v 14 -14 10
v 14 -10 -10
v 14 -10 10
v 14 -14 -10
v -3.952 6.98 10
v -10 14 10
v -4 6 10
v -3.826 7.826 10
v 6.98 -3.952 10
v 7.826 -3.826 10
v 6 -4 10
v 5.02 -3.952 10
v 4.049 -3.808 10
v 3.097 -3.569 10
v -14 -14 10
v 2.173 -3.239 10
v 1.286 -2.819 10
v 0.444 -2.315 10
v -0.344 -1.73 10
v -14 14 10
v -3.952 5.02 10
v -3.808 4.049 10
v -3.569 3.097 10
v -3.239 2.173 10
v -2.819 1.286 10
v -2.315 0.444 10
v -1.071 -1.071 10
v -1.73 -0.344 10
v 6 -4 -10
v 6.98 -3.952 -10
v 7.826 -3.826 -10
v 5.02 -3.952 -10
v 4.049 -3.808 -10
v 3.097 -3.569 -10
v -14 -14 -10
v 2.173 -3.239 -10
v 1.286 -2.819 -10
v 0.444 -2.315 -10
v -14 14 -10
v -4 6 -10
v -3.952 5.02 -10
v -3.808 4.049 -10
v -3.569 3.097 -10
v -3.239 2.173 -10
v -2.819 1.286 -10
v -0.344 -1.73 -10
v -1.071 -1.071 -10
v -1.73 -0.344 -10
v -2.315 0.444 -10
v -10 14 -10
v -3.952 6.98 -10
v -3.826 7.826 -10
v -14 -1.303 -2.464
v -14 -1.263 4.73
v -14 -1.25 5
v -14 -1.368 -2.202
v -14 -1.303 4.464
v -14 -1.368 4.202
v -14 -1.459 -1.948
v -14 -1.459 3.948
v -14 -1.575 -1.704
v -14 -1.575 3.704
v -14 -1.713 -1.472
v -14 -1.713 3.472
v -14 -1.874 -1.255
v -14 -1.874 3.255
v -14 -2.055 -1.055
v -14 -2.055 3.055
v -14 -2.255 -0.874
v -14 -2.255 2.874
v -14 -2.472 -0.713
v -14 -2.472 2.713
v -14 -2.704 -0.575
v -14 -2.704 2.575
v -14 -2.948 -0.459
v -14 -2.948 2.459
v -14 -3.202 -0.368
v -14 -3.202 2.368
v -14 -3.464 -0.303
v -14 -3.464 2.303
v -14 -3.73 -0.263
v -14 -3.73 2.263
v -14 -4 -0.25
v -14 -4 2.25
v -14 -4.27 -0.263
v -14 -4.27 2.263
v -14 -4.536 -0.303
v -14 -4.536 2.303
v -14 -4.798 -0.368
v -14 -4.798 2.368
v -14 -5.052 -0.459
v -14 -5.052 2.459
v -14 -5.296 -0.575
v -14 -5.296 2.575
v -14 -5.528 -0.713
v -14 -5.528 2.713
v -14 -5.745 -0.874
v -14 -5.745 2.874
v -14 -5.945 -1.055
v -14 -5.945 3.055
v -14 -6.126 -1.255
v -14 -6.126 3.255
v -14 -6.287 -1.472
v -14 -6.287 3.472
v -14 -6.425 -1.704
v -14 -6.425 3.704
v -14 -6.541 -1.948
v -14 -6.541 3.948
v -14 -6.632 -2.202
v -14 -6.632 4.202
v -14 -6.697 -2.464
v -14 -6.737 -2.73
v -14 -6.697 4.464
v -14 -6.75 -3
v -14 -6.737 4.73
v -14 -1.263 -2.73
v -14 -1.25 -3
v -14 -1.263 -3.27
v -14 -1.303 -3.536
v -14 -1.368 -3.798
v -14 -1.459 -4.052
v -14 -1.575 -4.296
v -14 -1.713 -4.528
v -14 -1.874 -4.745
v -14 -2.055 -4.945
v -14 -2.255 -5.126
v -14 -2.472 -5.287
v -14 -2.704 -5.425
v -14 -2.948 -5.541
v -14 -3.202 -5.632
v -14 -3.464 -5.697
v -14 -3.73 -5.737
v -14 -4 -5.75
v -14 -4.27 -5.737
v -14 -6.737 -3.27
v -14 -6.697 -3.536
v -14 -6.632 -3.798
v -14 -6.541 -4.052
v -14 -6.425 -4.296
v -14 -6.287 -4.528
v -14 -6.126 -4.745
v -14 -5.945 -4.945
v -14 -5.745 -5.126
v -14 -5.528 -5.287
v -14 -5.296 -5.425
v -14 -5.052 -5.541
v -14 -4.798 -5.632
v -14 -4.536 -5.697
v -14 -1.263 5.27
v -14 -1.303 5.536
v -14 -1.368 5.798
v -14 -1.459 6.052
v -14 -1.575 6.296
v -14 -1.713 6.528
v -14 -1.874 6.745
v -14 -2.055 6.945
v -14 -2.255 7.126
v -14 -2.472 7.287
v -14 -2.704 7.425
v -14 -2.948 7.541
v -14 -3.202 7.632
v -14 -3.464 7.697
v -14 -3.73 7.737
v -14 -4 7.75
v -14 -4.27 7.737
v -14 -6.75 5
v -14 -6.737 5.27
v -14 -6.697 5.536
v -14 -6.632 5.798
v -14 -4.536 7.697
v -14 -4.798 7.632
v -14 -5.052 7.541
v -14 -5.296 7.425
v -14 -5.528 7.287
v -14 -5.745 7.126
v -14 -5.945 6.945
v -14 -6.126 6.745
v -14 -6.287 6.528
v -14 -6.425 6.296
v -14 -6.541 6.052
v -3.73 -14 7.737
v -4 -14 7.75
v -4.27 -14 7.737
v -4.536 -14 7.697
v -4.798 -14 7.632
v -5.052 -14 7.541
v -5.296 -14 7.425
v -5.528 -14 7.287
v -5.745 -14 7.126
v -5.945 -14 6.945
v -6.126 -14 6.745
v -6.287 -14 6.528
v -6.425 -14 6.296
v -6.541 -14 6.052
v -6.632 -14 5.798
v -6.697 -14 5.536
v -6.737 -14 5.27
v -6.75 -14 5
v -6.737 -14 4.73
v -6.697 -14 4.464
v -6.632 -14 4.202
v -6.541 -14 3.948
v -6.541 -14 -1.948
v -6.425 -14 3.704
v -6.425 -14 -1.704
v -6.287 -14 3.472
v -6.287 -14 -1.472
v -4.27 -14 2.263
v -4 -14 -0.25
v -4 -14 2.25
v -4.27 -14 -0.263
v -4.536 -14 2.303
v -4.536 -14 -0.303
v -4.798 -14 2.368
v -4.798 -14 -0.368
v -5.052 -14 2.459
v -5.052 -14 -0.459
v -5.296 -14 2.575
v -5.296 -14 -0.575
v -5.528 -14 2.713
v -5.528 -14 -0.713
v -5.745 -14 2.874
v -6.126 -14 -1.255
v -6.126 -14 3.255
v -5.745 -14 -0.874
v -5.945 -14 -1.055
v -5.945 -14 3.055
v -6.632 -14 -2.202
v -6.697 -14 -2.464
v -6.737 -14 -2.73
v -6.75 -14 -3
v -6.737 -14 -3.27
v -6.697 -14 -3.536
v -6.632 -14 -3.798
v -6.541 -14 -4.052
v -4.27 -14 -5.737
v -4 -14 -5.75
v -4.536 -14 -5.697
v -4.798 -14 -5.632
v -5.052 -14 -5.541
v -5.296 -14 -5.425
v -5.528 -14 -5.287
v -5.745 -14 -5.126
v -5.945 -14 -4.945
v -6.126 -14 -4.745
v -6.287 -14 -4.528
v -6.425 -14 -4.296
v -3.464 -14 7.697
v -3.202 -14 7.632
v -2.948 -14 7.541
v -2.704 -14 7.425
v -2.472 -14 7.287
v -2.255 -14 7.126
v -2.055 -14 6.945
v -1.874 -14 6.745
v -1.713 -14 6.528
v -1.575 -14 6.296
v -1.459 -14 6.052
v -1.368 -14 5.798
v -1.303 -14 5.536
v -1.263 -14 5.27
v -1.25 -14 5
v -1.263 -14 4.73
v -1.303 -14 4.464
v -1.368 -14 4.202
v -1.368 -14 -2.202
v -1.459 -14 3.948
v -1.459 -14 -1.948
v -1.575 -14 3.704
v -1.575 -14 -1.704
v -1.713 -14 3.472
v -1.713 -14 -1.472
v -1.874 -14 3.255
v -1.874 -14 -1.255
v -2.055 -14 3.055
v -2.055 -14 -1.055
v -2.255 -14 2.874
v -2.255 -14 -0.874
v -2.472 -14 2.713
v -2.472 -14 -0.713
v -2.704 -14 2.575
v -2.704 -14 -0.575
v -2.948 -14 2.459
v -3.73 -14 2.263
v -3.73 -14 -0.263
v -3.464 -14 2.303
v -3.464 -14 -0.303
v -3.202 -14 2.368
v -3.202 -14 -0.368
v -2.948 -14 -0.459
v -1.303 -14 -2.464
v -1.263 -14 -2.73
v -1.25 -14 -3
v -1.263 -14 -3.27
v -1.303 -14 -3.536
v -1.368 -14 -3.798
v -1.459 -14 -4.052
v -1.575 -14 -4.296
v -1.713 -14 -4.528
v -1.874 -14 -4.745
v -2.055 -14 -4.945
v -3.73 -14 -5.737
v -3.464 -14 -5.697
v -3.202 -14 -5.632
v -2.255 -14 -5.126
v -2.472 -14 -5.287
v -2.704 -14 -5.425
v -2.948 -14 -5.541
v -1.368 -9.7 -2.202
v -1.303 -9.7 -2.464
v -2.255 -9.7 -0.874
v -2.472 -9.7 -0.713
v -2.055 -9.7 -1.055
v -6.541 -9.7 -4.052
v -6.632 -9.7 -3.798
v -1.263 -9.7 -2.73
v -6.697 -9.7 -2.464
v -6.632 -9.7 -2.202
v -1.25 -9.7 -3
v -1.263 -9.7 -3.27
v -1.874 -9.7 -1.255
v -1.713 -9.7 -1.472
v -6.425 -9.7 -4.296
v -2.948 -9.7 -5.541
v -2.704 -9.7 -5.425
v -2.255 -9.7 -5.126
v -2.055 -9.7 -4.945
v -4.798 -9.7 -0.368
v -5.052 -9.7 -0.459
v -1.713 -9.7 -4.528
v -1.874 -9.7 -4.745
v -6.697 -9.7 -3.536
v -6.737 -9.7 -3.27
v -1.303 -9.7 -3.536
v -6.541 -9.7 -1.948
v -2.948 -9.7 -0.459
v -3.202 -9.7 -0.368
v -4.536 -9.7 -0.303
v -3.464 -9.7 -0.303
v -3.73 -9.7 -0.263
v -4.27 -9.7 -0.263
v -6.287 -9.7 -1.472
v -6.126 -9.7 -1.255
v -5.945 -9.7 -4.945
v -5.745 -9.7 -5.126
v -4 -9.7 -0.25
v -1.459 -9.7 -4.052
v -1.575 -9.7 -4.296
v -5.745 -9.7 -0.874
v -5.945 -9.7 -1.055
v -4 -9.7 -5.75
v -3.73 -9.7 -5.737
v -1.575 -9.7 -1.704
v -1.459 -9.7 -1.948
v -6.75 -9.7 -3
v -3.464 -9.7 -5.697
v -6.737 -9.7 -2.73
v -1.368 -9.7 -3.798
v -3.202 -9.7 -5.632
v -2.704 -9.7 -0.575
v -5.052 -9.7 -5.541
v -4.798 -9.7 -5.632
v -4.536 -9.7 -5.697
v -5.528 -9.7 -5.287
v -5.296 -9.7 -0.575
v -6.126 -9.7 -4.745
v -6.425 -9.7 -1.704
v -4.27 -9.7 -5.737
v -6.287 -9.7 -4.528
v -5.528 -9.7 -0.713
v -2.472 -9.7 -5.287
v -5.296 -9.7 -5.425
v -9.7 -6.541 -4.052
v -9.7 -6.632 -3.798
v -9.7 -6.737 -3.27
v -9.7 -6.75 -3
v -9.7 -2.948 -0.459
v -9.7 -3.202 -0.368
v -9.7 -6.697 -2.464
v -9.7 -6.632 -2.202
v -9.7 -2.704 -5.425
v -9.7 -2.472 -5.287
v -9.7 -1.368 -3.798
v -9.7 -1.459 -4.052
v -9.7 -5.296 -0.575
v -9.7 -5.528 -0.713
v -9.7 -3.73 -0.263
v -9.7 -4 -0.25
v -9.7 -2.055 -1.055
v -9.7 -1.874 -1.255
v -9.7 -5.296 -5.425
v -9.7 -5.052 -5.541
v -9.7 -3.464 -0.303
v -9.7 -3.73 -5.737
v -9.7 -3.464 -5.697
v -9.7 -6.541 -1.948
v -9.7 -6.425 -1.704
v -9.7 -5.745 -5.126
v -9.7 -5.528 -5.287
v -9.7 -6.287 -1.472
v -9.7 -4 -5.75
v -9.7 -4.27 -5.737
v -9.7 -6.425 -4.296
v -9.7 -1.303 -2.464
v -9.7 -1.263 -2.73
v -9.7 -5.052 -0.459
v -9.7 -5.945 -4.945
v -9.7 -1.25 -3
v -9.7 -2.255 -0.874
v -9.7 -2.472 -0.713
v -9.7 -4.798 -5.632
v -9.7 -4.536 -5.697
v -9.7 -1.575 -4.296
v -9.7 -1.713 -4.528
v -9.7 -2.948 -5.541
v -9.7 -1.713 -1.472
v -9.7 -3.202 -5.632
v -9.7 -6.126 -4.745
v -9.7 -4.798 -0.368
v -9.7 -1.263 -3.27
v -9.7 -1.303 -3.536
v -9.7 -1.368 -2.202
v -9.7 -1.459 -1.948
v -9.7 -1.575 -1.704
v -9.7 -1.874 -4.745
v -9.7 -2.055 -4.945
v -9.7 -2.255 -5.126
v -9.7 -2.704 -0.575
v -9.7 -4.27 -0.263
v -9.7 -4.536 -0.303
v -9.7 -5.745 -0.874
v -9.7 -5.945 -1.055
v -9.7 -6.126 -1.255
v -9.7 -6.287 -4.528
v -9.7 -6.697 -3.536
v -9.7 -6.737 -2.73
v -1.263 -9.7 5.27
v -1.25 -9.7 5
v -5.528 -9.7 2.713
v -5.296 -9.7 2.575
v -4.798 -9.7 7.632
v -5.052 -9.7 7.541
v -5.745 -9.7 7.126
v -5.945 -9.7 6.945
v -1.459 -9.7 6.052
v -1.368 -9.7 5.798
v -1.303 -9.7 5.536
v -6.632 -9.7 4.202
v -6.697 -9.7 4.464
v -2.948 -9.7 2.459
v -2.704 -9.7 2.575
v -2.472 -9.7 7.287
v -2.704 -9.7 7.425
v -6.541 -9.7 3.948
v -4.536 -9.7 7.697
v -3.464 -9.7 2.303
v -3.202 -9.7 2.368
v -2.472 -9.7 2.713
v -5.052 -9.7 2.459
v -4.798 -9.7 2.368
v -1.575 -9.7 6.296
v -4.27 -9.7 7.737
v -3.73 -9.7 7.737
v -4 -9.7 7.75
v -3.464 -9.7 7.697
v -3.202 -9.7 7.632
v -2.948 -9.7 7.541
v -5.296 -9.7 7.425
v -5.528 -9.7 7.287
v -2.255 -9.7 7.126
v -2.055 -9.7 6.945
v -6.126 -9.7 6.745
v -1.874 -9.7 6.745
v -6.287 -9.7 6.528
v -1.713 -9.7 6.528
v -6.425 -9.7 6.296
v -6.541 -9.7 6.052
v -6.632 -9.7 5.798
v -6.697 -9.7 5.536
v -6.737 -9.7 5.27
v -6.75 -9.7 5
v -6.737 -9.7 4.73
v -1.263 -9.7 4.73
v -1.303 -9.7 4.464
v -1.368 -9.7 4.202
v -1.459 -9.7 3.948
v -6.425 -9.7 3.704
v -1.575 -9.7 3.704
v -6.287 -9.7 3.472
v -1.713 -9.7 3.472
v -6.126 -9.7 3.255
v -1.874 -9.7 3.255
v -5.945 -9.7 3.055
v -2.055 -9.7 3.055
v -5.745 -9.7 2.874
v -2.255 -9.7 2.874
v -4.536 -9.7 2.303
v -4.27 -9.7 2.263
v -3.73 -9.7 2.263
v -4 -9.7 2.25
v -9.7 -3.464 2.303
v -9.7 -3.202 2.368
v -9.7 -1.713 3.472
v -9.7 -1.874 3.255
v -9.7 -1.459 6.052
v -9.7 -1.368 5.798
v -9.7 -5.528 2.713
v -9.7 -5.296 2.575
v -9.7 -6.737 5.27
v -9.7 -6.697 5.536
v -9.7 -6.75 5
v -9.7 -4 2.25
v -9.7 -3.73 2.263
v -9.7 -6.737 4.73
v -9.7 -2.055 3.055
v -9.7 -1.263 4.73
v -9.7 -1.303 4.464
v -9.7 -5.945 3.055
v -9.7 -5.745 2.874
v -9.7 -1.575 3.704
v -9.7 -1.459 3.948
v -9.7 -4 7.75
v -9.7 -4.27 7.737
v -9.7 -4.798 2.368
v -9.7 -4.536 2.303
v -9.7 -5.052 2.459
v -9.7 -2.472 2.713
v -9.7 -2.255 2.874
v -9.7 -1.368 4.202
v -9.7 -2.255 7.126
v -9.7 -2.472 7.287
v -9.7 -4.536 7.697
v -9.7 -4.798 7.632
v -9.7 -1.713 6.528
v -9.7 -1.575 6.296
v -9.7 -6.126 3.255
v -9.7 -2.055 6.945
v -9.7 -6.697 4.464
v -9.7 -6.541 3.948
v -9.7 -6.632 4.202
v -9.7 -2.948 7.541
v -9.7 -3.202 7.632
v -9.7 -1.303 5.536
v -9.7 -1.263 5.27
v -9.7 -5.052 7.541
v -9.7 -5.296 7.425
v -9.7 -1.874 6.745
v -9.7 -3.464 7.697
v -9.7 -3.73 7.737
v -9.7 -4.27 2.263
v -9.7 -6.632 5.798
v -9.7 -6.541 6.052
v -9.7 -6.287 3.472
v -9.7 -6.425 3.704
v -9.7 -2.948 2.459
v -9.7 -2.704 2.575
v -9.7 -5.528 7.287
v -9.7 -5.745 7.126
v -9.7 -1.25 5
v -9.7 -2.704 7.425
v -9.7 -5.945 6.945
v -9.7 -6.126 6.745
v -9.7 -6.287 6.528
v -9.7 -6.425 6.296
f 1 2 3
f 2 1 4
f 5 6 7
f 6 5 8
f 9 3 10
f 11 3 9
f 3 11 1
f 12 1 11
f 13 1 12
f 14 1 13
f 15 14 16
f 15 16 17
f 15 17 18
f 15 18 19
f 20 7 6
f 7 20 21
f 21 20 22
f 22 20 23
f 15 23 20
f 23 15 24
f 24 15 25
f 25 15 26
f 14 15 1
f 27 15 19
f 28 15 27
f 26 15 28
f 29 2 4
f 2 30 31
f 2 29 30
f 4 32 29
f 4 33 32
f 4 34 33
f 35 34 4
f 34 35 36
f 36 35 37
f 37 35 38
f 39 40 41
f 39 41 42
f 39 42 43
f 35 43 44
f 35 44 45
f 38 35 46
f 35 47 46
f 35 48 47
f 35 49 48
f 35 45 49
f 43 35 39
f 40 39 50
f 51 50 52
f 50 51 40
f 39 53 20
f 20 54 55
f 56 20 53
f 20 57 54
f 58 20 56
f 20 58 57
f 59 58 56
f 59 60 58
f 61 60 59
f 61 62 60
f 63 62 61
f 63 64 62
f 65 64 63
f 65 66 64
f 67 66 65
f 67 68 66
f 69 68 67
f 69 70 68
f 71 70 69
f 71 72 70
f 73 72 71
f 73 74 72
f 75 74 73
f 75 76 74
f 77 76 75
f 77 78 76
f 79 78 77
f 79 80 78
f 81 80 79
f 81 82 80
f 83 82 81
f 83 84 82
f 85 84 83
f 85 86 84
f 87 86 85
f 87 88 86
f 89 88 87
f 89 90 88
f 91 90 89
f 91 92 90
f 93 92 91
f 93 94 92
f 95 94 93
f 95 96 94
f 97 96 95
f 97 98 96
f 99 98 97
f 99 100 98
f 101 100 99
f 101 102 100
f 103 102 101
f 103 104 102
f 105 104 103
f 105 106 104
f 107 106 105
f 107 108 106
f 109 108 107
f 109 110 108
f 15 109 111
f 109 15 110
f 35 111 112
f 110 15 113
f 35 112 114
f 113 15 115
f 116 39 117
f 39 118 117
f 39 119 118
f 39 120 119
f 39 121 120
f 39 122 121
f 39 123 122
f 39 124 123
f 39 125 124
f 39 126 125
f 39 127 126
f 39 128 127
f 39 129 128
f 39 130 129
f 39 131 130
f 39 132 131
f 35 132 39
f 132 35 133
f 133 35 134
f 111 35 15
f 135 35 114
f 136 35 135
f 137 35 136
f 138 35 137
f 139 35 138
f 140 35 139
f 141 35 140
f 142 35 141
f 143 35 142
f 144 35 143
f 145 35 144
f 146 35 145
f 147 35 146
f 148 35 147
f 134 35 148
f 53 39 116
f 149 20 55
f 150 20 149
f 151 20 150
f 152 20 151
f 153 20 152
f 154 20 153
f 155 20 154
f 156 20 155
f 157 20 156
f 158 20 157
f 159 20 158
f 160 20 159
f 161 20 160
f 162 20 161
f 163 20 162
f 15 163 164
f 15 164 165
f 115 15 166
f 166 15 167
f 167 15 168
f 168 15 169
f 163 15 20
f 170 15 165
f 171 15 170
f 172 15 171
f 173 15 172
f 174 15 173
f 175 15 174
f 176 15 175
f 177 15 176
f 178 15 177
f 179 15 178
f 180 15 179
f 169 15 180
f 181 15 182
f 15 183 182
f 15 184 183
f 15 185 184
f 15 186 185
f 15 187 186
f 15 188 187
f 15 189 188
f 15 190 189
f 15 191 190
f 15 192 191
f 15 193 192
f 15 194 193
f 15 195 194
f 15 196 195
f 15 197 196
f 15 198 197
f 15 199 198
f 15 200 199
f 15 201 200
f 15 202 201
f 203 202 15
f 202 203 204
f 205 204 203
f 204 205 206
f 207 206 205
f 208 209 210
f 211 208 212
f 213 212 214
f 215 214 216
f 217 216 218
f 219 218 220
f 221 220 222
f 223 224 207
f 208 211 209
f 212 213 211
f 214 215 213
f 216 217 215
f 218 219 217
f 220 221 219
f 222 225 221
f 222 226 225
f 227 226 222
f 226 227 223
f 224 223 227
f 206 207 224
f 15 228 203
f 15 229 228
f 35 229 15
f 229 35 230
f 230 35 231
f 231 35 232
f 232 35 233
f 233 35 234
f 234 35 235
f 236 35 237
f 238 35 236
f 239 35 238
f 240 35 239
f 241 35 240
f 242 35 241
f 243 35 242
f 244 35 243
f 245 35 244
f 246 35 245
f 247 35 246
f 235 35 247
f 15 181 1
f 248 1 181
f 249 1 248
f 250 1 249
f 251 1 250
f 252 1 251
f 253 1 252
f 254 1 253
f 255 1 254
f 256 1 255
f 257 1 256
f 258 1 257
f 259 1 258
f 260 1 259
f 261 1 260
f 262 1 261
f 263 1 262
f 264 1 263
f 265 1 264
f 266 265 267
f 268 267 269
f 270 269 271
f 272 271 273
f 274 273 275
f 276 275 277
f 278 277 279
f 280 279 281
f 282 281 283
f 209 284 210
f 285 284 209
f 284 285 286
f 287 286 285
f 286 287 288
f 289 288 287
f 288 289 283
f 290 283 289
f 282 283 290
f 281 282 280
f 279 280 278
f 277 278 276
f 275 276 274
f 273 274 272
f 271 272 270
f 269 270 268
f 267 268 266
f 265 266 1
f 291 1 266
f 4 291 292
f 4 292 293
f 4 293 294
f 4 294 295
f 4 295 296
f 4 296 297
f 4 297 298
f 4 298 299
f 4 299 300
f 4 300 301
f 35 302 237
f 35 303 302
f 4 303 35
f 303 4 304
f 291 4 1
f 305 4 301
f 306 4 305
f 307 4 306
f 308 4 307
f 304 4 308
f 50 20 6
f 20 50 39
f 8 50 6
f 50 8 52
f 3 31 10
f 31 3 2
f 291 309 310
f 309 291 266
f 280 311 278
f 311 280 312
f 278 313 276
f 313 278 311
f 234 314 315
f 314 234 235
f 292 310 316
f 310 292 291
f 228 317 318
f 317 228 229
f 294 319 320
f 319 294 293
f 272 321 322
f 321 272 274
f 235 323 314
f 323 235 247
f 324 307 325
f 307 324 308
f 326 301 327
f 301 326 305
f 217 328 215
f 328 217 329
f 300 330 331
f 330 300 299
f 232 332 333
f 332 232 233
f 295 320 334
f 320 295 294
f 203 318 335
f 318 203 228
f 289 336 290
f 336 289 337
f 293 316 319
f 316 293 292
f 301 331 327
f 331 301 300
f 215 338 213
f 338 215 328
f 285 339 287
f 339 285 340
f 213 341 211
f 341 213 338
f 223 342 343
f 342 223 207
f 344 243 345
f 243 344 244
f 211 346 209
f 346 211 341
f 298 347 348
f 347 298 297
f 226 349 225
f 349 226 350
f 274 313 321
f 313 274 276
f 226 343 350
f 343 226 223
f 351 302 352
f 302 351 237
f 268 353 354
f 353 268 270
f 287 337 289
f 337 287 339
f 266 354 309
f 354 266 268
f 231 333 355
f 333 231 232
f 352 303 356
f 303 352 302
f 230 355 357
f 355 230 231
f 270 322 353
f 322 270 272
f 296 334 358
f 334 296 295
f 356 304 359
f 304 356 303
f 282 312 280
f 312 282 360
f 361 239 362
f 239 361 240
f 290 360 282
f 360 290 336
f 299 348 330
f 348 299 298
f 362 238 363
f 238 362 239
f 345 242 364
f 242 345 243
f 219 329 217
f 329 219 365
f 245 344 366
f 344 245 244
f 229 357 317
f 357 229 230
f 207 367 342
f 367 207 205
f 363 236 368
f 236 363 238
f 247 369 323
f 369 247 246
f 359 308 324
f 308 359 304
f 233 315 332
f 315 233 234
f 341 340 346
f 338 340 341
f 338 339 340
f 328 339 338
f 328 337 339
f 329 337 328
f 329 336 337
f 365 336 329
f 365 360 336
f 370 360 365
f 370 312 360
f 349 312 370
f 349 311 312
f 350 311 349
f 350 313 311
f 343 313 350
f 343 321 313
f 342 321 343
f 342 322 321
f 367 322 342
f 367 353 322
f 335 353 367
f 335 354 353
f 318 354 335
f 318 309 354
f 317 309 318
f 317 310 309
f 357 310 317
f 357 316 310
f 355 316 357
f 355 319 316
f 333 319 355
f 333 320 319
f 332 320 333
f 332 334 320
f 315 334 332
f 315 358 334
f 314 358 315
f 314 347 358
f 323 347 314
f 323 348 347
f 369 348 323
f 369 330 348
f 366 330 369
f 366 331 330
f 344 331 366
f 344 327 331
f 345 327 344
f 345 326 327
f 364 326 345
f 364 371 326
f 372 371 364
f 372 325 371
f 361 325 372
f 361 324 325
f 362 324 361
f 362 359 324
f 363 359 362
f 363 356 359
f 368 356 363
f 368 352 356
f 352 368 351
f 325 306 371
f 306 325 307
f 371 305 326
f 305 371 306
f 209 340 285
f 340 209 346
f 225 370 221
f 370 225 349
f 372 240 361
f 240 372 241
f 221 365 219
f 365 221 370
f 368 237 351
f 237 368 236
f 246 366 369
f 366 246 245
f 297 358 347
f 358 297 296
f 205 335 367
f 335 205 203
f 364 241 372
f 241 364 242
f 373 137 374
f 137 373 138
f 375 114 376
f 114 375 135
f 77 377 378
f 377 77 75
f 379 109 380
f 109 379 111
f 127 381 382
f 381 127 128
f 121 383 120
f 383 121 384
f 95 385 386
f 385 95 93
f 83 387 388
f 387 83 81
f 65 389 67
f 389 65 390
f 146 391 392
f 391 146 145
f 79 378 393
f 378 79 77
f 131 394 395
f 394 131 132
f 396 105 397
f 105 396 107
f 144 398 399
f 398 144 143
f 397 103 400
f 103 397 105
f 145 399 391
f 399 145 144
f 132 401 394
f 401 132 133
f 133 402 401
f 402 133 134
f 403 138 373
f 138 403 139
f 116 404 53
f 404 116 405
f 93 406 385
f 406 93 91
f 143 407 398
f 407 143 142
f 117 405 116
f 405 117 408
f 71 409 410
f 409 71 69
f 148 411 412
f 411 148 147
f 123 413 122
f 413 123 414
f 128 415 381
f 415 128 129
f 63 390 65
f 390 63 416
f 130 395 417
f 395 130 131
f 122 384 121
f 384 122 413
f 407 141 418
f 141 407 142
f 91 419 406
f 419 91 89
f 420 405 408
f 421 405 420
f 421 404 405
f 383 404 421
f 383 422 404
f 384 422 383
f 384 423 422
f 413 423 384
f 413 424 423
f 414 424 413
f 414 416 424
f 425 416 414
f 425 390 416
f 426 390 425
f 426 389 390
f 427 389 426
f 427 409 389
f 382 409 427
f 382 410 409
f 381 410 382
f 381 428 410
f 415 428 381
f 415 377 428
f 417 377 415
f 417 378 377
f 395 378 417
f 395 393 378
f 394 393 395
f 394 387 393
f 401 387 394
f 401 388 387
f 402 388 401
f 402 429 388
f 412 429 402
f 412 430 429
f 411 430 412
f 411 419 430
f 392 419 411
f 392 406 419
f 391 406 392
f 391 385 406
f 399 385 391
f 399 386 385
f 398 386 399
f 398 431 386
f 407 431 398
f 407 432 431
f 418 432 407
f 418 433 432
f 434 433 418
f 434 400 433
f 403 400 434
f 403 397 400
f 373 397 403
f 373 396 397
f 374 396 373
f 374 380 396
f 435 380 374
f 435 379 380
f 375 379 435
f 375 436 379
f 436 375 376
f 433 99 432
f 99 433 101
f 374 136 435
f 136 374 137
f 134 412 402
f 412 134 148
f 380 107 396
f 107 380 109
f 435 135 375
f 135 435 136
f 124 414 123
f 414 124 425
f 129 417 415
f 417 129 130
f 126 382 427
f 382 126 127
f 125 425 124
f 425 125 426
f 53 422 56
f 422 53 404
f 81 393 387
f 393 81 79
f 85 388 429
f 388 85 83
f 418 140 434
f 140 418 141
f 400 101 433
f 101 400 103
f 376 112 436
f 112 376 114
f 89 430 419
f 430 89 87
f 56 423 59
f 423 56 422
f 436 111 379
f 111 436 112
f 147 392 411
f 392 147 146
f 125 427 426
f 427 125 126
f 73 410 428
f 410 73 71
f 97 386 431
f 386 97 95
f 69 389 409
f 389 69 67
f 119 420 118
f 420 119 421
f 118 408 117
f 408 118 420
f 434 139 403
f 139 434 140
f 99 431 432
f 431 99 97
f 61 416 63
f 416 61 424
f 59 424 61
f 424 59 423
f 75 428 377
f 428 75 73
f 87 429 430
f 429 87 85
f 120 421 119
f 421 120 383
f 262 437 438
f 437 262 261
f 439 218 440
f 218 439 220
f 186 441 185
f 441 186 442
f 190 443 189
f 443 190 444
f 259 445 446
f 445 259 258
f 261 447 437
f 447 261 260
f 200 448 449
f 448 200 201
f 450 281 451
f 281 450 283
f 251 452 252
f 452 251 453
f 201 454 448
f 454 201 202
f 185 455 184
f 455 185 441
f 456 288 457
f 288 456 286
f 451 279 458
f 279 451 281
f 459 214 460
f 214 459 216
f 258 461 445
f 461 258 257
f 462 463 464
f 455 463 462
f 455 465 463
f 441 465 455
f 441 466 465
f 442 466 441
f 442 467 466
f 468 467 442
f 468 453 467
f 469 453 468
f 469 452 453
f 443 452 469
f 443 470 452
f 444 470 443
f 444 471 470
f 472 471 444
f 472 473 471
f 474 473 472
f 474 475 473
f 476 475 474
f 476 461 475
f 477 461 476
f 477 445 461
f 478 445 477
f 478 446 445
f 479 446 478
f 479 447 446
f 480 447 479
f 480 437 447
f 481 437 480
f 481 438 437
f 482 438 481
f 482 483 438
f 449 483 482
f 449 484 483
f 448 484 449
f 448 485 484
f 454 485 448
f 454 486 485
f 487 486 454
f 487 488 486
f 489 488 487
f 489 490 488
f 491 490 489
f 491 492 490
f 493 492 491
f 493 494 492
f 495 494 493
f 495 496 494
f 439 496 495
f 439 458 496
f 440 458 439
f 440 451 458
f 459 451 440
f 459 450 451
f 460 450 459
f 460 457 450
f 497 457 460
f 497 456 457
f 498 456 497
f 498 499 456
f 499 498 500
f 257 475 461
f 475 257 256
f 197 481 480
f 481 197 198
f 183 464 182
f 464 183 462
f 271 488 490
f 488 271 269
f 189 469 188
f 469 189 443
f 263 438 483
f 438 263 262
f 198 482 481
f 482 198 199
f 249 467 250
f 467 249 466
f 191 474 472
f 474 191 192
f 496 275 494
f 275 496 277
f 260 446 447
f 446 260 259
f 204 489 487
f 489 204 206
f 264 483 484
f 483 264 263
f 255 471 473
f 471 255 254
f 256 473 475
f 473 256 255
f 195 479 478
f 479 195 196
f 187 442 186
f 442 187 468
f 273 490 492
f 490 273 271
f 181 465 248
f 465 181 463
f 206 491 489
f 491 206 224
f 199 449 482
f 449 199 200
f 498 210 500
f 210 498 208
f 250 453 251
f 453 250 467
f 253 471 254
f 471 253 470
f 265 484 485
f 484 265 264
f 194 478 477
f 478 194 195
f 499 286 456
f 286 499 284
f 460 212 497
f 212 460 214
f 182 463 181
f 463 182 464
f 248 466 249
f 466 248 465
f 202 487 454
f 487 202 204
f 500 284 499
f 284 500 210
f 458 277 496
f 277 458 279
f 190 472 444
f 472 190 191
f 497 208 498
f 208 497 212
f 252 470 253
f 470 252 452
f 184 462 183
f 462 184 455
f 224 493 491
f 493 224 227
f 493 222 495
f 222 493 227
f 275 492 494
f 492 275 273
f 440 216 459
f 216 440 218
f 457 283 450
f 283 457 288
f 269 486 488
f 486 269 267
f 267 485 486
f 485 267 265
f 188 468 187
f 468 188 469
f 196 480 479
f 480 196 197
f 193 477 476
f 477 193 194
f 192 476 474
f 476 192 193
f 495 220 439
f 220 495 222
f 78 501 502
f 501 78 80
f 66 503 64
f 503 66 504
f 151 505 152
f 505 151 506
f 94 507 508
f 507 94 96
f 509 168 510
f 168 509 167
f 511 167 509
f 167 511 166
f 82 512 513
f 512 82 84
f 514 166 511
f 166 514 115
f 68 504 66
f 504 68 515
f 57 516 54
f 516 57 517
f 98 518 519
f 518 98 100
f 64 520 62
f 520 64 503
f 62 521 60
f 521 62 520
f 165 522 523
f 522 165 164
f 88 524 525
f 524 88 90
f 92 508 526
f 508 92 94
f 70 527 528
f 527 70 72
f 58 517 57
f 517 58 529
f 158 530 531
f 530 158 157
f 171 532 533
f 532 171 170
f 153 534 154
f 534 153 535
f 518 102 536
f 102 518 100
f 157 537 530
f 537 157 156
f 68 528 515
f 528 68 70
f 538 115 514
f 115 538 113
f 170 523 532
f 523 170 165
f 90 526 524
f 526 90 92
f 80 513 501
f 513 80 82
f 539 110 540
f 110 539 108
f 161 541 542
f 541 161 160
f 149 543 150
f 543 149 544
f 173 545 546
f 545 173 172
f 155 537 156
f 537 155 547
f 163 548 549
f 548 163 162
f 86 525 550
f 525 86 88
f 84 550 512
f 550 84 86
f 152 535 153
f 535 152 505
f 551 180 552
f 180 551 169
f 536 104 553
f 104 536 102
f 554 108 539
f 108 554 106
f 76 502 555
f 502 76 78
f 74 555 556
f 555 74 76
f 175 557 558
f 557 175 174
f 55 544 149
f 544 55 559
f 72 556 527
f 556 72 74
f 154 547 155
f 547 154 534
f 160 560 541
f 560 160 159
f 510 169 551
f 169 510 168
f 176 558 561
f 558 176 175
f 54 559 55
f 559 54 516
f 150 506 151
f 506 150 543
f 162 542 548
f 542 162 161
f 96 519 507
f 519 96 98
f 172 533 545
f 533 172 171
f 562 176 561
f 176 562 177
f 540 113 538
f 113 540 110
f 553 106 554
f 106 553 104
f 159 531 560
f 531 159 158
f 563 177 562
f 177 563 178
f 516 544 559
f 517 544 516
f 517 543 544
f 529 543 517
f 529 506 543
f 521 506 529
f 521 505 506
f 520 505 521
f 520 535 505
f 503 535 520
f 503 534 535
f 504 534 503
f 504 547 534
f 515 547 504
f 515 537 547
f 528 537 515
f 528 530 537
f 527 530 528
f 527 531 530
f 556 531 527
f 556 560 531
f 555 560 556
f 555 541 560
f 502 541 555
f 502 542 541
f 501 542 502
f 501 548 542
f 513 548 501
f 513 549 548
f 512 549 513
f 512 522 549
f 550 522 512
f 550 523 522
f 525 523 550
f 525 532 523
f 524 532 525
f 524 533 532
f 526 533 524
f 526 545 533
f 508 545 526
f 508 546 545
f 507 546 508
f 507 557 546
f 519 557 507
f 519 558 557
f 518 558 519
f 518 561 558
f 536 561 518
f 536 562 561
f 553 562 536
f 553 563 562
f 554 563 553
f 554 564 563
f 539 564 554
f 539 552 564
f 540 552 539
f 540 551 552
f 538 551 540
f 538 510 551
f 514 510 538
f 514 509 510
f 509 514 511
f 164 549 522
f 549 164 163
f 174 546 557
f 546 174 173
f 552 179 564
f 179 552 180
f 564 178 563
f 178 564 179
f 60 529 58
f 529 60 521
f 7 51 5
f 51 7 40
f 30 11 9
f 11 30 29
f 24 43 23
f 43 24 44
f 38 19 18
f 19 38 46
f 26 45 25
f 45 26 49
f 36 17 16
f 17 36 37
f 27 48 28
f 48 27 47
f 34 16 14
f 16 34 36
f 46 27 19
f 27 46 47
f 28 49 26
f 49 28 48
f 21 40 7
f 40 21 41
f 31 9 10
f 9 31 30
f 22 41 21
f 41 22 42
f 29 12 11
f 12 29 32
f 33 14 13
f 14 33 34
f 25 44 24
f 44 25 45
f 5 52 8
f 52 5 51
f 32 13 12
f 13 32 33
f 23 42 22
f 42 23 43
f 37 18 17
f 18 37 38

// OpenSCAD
$fn = 64;

module corner_bracket(envelope_x=28, envelope_y=28, envelope_z=20, wall=4, rib=3, hole_d=5.5, hole_off=10) {
    difference() {
        union() {
            // L-shaped body
            union() {
                cube([envelope_x, wall, envelope_z], center=false);
                cube([wall, envelope_y, envelope_z], center=false);
            }

            // Inner gusset/rib
            translate([wall, wall, 0])
                linear_extrude(height=envelope_z)
                    polygon(points=[[0,0],[envelope_x-wall,0],[0,envelope_y-wall]]);
        }

        // Mounting holes (two on each leg)
        for (zpos = [envelope_z*0.35, envelope_z*0.75]) {
            // Holes through Y-leg (along Y)
            translate([hole_off, wall/2, zpos])
                rotate([90,0,0])
                    cylinder(h=wall+0.6, d=hole_d, center=true);

            // Holes through X-leg (along X)
            translate([wall/2, hole_off, zpos])
                rotate([0,90,0])
                    cylinder(h=wall+0.6, d=hole_d, center=true);
        }

        // Reduce bulk near outer corner (cosmetic chamfer-like cut)
        translate([envelope_x-8, envelope_y-8, -0.5])
            cylinder(h=envelope_z+1, r=10, center=false);
    }
}

translate([-14,-14,-10])
    corner_bracket();
